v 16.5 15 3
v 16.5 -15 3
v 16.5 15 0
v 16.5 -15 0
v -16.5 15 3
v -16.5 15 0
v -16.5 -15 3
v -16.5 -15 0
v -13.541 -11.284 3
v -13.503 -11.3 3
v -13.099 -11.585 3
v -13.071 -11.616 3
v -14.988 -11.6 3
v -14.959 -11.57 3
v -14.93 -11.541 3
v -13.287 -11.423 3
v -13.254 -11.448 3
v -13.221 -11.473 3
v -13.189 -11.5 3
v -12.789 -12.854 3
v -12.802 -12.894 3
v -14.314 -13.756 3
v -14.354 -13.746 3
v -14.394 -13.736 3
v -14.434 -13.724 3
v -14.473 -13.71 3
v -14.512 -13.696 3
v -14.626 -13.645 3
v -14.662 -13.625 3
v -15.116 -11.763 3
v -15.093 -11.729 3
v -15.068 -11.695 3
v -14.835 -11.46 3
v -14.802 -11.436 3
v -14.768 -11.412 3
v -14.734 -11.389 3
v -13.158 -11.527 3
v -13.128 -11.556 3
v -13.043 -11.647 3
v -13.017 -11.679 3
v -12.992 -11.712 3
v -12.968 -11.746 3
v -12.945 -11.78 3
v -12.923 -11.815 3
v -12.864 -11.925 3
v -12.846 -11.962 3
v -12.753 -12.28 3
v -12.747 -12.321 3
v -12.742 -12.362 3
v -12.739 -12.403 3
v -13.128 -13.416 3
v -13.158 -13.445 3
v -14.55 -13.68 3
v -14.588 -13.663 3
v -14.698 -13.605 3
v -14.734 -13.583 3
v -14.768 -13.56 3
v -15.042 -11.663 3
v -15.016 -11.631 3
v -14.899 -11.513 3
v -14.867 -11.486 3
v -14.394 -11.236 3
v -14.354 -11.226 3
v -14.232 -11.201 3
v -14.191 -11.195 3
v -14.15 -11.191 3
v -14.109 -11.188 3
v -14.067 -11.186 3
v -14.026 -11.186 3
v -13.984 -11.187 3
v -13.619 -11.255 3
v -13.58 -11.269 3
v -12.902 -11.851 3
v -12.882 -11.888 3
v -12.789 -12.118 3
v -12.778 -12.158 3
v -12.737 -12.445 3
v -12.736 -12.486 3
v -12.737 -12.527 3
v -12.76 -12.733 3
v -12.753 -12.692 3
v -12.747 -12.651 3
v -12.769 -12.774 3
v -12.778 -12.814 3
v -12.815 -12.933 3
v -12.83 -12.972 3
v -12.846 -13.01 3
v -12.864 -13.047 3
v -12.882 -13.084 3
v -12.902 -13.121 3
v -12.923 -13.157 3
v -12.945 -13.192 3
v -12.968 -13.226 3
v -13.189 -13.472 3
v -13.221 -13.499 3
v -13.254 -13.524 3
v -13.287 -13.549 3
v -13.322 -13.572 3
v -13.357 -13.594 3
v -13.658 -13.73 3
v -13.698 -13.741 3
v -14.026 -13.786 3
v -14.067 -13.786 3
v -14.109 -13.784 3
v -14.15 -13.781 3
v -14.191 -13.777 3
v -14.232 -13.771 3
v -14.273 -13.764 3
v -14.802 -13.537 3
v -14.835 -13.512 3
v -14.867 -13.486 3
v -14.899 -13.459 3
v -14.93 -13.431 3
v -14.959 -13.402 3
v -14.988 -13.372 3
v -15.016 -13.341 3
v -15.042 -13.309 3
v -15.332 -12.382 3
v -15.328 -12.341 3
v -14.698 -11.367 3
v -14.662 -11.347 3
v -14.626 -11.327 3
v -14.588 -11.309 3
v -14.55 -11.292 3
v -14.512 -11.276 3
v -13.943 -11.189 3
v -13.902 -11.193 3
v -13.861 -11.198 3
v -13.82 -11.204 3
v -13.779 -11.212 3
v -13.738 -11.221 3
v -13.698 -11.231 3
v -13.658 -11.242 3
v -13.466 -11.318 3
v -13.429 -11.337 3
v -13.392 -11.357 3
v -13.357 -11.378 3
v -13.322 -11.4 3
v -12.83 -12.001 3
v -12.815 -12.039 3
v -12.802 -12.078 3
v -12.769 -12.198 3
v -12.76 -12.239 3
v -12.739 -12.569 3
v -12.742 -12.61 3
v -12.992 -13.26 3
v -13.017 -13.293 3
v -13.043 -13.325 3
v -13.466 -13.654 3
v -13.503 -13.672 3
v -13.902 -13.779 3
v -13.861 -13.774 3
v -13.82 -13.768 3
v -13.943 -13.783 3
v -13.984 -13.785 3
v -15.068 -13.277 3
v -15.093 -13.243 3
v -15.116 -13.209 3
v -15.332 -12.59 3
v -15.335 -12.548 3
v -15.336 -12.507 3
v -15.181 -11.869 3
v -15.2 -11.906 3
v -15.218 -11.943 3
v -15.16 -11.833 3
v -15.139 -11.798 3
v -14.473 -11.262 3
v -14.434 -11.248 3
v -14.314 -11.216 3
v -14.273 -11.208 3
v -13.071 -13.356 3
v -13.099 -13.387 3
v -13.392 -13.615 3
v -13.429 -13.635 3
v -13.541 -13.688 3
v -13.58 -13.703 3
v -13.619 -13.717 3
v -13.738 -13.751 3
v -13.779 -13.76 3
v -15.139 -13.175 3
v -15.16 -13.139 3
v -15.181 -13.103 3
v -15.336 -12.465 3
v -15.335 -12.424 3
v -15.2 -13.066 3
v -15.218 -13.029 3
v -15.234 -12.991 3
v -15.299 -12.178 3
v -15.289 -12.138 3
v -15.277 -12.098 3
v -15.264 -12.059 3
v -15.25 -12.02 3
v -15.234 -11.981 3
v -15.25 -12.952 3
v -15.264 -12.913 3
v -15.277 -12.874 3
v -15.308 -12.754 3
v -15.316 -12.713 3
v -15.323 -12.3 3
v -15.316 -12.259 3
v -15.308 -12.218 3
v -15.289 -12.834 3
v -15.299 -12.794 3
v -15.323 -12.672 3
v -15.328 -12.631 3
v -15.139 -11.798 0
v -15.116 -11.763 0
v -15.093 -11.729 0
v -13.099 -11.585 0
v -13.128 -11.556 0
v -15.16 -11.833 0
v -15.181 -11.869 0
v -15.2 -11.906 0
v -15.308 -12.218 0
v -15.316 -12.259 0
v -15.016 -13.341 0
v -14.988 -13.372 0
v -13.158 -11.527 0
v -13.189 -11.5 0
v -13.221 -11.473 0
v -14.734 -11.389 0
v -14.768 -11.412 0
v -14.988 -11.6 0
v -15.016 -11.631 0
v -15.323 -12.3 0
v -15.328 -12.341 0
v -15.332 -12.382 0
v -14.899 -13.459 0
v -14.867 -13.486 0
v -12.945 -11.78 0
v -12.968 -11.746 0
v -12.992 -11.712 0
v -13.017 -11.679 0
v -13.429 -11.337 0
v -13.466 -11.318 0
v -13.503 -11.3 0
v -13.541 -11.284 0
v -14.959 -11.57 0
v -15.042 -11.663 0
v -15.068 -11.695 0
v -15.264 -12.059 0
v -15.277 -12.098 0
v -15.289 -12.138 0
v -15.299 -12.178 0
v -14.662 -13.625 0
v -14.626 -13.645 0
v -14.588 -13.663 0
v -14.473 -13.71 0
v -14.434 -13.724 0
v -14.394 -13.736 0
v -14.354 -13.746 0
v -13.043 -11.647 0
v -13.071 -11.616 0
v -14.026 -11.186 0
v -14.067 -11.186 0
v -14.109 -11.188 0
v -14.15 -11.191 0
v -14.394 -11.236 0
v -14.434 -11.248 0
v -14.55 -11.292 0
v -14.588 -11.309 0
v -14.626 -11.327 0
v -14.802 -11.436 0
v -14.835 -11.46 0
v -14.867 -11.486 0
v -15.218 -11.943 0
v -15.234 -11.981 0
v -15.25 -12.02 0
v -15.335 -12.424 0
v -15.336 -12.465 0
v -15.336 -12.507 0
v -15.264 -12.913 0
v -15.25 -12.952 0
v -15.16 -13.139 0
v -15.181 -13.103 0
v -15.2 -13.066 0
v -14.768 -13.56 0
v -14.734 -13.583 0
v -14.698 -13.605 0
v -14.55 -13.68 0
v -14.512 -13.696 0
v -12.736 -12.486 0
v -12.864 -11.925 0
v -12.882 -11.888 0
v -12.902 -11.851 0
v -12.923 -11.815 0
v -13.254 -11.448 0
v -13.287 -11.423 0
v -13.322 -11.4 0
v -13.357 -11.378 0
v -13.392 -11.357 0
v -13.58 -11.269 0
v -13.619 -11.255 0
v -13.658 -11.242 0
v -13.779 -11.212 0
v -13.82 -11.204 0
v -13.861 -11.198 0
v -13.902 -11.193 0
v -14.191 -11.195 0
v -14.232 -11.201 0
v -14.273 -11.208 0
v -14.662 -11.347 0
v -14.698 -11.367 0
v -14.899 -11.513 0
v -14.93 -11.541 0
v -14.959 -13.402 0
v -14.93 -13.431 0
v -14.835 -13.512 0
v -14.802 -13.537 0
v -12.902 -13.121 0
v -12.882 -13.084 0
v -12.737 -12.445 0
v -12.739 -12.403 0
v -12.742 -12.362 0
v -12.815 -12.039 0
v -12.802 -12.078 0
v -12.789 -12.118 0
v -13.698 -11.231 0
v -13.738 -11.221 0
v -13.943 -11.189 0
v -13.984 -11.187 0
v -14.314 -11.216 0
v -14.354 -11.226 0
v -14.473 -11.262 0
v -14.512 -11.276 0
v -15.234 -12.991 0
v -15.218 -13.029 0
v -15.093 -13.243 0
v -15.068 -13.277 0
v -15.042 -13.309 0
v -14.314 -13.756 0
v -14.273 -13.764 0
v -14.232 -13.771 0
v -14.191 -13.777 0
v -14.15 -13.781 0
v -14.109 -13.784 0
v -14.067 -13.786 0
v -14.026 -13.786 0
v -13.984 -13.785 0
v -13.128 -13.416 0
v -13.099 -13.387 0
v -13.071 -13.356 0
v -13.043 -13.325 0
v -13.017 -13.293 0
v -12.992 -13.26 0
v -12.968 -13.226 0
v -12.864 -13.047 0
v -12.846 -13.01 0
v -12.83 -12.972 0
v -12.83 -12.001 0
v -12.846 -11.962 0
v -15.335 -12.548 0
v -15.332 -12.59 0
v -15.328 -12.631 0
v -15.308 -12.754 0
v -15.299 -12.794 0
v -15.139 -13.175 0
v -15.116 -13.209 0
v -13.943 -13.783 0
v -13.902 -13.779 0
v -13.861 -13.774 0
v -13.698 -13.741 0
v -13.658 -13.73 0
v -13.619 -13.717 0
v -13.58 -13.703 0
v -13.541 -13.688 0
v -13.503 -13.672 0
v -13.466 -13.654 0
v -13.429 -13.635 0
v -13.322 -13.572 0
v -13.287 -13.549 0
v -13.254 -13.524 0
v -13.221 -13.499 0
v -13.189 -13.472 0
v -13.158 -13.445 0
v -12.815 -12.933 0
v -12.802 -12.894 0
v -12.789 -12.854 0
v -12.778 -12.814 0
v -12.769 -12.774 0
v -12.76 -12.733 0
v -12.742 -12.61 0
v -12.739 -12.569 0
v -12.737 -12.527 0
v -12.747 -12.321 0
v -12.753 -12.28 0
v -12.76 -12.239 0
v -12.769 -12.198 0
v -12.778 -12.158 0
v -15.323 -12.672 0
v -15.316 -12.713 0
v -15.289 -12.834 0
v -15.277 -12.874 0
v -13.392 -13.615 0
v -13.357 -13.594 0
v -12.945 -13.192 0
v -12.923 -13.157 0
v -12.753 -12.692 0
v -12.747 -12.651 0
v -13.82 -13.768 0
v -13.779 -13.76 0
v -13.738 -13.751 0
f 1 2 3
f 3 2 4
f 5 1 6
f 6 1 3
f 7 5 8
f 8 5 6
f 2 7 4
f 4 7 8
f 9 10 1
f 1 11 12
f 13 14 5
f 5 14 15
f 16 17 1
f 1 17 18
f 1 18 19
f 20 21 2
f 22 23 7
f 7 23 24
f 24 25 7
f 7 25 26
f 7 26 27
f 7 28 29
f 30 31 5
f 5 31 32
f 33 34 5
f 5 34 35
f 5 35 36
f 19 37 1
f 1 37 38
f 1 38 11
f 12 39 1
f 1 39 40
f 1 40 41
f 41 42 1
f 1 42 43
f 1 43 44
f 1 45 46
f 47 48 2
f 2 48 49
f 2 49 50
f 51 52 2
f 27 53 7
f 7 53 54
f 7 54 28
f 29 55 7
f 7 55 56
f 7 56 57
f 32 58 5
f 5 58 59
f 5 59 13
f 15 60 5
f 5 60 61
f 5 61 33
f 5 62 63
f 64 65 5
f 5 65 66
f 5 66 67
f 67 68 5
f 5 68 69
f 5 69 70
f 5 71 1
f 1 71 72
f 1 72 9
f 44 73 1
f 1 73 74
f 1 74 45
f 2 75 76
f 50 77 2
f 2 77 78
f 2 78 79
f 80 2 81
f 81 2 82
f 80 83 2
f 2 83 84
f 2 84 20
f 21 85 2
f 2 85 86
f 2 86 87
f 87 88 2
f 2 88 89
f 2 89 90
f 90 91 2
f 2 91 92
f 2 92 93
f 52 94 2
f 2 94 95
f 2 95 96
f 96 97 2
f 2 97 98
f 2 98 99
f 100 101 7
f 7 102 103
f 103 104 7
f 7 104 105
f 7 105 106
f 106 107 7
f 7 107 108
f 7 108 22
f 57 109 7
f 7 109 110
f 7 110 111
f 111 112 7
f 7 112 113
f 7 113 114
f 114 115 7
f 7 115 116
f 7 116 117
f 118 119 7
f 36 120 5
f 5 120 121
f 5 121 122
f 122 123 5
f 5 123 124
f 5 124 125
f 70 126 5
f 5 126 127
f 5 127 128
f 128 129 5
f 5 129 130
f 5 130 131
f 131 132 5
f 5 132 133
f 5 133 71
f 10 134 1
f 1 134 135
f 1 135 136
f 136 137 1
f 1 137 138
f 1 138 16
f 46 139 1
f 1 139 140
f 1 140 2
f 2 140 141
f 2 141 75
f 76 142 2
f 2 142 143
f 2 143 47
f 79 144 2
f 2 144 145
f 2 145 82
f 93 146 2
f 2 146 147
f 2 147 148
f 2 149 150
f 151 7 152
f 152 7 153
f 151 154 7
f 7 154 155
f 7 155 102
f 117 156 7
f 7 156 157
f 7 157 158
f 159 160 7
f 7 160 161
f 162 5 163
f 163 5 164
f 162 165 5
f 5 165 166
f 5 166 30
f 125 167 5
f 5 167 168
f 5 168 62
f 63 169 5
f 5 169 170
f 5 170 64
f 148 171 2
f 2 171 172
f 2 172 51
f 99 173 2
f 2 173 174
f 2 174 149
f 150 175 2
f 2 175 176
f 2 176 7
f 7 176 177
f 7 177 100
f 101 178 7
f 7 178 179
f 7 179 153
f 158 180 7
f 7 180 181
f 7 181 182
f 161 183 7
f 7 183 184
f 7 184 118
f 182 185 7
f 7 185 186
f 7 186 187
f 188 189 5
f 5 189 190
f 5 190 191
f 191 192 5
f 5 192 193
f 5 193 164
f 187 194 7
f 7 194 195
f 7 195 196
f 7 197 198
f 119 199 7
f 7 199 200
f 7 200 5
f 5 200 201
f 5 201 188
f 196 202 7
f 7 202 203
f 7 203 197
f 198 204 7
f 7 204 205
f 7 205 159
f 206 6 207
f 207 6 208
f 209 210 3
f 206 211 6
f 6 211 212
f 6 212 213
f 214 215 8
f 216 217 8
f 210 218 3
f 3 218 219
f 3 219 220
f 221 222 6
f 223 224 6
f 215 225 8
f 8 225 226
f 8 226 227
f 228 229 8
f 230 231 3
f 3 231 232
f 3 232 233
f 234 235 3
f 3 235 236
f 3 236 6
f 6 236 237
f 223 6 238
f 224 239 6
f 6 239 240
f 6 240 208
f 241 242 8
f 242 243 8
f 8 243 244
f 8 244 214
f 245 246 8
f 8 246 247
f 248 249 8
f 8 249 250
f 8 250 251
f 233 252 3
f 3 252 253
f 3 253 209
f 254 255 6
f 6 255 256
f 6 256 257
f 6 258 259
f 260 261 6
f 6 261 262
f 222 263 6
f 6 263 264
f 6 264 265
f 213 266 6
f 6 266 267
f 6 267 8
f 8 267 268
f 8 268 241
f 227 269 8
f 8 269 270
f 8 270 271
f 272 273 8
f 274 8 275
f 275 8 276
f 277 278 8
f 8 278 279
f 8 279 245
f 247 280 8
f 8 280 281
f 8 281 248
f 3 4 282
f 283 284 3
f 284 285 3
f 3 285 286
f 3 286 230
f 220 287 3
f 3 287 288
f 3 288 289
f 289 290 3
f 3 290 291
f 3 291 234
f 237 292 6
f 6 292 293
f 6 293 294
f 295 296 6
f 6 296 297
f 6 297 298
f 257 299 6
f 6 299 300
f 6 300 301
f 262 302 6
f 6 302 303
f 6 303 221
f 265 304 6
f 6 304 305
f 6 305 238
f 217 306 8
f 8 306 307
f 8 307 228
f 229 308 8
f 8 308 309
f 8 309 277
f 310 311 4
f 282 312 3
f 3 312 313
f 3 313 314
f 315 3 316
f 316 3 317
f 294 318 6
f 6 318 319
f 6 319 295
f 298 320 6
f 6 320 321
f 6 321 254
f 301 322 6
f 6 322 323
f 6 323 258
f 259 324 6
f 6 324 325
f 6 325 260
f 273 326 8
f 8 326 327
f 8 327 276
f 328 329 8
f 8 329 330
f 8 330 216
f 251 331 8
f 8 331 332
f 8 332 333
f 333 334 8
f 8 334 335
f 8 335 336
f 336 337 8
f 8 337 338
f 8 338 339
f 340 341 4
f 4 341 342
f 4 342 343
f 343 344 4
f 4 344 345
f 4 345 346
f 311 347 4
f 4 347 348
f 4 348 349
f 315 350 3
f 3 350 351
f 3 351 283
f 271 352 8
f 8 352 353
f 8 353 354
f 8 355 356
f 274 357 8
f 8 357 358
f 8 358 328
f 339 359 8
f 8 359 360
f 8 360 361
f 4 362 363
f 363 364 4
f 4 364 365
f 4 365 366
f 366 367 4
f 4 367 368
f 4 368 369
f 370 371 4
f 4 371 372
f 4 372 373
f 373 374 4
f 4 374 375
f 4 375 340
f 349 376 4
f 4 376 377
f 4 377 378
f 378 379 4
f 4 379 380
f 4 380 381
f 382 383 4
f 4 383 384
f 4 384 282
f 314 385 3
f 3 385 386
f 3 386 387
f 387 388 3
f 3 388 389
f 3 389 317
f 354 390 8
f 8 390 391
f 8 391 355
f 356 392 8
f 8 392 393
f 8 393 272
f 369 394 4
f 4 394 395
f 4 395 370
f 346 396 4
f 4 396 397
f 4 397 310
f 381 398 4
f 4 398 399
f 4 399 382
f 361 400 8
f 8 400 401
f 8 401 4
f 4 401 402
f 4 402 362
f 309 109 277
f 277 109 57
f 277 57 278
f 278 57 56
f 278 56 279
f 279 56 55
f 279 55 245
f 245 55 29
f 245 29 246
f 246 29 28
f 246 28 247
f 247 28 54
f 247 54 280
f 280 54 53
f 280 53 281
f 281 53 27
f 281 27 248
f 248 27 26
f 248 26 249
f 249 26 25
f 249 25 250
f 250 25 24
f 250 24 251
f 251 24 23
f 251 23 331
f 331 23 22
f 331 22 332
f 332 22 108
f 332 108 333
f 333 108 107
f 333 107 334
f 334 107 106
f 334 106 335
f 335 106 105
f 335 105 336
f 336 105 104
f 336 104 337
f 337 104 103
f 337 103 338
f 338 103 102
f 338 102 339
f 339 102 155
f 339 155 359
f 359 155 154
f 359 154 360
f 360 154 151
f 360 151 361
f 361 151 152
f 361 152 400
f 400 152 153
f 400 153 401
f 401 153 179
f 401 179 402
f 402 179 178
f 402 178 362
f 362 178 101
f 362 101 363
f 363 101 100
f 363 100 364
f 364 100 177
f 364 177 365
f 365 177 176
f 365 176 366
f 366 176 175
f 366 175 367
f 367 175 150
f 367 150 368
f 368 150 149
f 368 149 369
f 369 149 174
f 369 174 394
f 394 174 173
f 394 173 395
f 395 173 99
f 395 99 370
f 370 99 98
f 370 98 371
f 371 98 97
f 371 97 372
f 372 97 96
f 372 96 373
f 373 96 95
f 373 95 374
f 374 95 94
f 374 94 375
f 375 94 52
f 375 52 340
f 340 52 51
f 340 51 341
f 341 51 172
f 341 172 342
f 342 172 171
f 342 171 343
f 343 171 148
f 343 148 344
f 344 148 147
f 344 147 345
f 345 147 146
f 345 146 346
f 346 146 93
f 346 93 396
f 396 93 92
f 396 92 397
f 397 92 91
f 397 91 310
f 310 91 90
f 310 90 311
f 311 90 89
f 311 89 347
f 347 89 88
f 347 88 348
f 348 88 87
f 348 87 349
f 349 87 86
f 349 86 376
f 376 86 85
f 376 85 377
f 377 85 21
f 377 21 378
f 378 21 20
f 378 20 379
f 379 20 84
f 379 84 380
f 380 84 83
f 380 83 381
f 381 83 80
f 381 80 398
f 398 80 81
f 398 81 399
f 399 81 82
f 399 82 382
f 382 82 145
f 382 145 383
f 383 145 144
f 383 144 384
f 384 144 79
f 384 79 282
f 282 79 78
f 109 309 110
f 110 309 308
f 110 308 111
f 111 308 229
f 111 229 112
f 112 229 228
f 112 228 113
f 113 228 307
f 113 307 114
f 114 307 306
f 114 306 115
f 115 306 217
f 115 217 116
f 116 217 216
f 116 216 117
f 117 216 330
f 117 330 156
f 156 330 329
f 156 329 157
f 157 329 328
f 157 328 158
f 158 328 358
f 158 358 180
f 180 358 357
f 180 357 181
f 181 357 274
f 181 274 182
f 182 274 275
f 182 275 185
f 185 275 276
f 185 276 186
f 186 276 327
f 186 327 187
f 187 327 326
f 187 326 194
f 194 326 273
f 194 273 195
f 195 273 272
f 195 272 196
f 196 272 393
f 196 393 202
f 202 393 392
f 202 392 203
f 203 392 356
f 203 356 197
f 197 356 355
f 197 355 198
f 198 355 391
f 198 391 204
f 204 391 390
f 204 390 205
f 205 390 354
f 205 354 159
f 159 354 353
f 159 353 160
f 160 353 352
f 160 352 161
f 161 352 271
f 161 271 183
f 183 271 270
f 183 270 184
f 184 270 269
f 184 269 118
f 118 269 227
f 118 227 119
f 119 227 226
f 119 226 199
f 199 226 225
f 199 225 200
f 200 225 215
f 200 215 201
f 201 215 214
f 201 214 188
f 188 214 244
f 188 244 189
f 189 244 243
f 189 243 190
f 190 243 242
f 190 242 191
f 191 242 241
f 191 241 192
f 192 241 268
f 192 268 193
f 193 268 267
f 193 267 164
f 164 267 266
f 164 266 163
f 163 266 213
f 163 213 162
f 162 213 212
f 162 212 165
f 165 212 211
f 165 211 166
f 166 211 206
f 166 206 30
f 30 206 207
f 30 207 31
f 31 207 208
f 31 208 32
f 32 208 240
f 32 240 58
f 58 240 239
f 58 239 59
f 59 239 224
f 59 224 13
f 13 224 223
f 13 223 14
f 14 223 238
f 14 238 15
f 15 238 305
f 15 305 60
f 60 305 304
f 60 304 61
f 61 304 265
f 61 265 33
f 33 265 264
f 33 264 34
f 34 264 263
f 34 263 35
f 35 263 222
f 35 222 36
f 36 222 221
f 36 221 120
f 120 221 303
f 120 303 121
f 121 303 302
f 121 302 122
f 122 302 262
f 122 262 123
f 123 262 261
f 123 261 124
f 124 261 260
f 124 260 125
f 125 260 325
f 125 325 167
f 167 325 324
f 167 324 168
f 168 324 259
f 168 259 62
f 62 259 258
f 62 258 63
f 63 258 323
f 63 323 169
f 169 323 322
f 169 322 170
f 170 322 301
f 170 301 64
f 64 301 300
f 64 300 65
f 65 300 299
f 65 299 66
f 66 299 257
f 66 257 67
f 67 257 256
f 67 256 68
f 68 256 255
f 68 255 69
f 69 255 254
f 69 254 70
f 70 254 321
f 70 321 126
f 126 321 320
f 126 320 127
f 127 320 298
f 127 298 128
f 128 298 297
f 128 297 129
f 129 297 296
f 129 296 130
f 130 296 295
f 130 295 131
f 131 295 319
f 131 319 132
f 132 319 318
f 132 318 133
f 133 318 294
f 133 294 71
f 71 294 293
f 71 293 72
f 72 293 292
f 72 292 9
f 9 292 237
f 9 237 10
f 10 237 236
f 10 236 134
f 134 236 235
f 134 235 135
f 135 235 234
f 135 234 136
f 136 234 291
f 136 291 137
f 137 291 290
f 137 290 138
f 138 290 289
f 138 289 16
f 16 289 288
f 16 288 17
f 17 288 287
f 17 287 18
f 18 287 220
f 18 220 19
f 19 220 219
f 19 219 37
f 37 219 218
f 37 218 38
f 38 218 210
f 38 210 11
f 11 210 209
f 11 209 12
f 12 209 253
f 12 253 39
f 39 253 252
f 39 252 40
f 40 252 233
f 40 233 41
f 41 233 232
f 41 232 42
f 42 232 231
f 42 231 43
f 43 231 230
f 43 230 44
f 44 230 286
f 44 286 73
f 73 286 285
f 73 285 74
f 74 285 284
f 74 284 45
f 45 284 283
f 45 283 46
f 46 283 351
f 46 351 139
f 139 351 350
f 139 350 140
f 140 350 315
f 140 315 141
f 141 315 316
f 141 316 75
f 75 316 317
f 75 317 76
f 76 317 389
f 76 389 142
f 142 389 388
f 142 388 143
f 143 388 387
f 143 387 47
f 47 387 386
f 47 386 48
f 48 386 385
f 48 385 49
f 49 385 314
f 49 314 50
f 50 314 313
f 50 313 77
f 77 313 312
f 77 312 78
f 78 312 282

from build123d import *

# Parameters (mm, degrees)
ESQUISSE1_W            = 33
ESQUISSE1_H            = 30
BOSS_EXTRU_1_DEPTH     = 3
D_GAGEMENT_M1_61_D     = 2.6
D_GAGEMENT_M1_61_DEPTH = 50


with BuildPart() as part:
    # Esquisse1 → Boss.-Extru.1 (new body)
    with BuildSketch(Plane.XY):
        Rectangle(ESQUISSE1_W, ESQUISSE1_H)
    extrude(amount=BOSS_EXTRU_1_DEPTH)

    # Dégagement M1.61
    with Locations(Plane.XY.offset(3)):
        with Locations((-14.036286849, -12.486010391)):
            Hole(D_GAGEMENT_M1_61_D / 2, depth=D_GAGEMENT_M1_61_DEPTH)


solid = part.part
